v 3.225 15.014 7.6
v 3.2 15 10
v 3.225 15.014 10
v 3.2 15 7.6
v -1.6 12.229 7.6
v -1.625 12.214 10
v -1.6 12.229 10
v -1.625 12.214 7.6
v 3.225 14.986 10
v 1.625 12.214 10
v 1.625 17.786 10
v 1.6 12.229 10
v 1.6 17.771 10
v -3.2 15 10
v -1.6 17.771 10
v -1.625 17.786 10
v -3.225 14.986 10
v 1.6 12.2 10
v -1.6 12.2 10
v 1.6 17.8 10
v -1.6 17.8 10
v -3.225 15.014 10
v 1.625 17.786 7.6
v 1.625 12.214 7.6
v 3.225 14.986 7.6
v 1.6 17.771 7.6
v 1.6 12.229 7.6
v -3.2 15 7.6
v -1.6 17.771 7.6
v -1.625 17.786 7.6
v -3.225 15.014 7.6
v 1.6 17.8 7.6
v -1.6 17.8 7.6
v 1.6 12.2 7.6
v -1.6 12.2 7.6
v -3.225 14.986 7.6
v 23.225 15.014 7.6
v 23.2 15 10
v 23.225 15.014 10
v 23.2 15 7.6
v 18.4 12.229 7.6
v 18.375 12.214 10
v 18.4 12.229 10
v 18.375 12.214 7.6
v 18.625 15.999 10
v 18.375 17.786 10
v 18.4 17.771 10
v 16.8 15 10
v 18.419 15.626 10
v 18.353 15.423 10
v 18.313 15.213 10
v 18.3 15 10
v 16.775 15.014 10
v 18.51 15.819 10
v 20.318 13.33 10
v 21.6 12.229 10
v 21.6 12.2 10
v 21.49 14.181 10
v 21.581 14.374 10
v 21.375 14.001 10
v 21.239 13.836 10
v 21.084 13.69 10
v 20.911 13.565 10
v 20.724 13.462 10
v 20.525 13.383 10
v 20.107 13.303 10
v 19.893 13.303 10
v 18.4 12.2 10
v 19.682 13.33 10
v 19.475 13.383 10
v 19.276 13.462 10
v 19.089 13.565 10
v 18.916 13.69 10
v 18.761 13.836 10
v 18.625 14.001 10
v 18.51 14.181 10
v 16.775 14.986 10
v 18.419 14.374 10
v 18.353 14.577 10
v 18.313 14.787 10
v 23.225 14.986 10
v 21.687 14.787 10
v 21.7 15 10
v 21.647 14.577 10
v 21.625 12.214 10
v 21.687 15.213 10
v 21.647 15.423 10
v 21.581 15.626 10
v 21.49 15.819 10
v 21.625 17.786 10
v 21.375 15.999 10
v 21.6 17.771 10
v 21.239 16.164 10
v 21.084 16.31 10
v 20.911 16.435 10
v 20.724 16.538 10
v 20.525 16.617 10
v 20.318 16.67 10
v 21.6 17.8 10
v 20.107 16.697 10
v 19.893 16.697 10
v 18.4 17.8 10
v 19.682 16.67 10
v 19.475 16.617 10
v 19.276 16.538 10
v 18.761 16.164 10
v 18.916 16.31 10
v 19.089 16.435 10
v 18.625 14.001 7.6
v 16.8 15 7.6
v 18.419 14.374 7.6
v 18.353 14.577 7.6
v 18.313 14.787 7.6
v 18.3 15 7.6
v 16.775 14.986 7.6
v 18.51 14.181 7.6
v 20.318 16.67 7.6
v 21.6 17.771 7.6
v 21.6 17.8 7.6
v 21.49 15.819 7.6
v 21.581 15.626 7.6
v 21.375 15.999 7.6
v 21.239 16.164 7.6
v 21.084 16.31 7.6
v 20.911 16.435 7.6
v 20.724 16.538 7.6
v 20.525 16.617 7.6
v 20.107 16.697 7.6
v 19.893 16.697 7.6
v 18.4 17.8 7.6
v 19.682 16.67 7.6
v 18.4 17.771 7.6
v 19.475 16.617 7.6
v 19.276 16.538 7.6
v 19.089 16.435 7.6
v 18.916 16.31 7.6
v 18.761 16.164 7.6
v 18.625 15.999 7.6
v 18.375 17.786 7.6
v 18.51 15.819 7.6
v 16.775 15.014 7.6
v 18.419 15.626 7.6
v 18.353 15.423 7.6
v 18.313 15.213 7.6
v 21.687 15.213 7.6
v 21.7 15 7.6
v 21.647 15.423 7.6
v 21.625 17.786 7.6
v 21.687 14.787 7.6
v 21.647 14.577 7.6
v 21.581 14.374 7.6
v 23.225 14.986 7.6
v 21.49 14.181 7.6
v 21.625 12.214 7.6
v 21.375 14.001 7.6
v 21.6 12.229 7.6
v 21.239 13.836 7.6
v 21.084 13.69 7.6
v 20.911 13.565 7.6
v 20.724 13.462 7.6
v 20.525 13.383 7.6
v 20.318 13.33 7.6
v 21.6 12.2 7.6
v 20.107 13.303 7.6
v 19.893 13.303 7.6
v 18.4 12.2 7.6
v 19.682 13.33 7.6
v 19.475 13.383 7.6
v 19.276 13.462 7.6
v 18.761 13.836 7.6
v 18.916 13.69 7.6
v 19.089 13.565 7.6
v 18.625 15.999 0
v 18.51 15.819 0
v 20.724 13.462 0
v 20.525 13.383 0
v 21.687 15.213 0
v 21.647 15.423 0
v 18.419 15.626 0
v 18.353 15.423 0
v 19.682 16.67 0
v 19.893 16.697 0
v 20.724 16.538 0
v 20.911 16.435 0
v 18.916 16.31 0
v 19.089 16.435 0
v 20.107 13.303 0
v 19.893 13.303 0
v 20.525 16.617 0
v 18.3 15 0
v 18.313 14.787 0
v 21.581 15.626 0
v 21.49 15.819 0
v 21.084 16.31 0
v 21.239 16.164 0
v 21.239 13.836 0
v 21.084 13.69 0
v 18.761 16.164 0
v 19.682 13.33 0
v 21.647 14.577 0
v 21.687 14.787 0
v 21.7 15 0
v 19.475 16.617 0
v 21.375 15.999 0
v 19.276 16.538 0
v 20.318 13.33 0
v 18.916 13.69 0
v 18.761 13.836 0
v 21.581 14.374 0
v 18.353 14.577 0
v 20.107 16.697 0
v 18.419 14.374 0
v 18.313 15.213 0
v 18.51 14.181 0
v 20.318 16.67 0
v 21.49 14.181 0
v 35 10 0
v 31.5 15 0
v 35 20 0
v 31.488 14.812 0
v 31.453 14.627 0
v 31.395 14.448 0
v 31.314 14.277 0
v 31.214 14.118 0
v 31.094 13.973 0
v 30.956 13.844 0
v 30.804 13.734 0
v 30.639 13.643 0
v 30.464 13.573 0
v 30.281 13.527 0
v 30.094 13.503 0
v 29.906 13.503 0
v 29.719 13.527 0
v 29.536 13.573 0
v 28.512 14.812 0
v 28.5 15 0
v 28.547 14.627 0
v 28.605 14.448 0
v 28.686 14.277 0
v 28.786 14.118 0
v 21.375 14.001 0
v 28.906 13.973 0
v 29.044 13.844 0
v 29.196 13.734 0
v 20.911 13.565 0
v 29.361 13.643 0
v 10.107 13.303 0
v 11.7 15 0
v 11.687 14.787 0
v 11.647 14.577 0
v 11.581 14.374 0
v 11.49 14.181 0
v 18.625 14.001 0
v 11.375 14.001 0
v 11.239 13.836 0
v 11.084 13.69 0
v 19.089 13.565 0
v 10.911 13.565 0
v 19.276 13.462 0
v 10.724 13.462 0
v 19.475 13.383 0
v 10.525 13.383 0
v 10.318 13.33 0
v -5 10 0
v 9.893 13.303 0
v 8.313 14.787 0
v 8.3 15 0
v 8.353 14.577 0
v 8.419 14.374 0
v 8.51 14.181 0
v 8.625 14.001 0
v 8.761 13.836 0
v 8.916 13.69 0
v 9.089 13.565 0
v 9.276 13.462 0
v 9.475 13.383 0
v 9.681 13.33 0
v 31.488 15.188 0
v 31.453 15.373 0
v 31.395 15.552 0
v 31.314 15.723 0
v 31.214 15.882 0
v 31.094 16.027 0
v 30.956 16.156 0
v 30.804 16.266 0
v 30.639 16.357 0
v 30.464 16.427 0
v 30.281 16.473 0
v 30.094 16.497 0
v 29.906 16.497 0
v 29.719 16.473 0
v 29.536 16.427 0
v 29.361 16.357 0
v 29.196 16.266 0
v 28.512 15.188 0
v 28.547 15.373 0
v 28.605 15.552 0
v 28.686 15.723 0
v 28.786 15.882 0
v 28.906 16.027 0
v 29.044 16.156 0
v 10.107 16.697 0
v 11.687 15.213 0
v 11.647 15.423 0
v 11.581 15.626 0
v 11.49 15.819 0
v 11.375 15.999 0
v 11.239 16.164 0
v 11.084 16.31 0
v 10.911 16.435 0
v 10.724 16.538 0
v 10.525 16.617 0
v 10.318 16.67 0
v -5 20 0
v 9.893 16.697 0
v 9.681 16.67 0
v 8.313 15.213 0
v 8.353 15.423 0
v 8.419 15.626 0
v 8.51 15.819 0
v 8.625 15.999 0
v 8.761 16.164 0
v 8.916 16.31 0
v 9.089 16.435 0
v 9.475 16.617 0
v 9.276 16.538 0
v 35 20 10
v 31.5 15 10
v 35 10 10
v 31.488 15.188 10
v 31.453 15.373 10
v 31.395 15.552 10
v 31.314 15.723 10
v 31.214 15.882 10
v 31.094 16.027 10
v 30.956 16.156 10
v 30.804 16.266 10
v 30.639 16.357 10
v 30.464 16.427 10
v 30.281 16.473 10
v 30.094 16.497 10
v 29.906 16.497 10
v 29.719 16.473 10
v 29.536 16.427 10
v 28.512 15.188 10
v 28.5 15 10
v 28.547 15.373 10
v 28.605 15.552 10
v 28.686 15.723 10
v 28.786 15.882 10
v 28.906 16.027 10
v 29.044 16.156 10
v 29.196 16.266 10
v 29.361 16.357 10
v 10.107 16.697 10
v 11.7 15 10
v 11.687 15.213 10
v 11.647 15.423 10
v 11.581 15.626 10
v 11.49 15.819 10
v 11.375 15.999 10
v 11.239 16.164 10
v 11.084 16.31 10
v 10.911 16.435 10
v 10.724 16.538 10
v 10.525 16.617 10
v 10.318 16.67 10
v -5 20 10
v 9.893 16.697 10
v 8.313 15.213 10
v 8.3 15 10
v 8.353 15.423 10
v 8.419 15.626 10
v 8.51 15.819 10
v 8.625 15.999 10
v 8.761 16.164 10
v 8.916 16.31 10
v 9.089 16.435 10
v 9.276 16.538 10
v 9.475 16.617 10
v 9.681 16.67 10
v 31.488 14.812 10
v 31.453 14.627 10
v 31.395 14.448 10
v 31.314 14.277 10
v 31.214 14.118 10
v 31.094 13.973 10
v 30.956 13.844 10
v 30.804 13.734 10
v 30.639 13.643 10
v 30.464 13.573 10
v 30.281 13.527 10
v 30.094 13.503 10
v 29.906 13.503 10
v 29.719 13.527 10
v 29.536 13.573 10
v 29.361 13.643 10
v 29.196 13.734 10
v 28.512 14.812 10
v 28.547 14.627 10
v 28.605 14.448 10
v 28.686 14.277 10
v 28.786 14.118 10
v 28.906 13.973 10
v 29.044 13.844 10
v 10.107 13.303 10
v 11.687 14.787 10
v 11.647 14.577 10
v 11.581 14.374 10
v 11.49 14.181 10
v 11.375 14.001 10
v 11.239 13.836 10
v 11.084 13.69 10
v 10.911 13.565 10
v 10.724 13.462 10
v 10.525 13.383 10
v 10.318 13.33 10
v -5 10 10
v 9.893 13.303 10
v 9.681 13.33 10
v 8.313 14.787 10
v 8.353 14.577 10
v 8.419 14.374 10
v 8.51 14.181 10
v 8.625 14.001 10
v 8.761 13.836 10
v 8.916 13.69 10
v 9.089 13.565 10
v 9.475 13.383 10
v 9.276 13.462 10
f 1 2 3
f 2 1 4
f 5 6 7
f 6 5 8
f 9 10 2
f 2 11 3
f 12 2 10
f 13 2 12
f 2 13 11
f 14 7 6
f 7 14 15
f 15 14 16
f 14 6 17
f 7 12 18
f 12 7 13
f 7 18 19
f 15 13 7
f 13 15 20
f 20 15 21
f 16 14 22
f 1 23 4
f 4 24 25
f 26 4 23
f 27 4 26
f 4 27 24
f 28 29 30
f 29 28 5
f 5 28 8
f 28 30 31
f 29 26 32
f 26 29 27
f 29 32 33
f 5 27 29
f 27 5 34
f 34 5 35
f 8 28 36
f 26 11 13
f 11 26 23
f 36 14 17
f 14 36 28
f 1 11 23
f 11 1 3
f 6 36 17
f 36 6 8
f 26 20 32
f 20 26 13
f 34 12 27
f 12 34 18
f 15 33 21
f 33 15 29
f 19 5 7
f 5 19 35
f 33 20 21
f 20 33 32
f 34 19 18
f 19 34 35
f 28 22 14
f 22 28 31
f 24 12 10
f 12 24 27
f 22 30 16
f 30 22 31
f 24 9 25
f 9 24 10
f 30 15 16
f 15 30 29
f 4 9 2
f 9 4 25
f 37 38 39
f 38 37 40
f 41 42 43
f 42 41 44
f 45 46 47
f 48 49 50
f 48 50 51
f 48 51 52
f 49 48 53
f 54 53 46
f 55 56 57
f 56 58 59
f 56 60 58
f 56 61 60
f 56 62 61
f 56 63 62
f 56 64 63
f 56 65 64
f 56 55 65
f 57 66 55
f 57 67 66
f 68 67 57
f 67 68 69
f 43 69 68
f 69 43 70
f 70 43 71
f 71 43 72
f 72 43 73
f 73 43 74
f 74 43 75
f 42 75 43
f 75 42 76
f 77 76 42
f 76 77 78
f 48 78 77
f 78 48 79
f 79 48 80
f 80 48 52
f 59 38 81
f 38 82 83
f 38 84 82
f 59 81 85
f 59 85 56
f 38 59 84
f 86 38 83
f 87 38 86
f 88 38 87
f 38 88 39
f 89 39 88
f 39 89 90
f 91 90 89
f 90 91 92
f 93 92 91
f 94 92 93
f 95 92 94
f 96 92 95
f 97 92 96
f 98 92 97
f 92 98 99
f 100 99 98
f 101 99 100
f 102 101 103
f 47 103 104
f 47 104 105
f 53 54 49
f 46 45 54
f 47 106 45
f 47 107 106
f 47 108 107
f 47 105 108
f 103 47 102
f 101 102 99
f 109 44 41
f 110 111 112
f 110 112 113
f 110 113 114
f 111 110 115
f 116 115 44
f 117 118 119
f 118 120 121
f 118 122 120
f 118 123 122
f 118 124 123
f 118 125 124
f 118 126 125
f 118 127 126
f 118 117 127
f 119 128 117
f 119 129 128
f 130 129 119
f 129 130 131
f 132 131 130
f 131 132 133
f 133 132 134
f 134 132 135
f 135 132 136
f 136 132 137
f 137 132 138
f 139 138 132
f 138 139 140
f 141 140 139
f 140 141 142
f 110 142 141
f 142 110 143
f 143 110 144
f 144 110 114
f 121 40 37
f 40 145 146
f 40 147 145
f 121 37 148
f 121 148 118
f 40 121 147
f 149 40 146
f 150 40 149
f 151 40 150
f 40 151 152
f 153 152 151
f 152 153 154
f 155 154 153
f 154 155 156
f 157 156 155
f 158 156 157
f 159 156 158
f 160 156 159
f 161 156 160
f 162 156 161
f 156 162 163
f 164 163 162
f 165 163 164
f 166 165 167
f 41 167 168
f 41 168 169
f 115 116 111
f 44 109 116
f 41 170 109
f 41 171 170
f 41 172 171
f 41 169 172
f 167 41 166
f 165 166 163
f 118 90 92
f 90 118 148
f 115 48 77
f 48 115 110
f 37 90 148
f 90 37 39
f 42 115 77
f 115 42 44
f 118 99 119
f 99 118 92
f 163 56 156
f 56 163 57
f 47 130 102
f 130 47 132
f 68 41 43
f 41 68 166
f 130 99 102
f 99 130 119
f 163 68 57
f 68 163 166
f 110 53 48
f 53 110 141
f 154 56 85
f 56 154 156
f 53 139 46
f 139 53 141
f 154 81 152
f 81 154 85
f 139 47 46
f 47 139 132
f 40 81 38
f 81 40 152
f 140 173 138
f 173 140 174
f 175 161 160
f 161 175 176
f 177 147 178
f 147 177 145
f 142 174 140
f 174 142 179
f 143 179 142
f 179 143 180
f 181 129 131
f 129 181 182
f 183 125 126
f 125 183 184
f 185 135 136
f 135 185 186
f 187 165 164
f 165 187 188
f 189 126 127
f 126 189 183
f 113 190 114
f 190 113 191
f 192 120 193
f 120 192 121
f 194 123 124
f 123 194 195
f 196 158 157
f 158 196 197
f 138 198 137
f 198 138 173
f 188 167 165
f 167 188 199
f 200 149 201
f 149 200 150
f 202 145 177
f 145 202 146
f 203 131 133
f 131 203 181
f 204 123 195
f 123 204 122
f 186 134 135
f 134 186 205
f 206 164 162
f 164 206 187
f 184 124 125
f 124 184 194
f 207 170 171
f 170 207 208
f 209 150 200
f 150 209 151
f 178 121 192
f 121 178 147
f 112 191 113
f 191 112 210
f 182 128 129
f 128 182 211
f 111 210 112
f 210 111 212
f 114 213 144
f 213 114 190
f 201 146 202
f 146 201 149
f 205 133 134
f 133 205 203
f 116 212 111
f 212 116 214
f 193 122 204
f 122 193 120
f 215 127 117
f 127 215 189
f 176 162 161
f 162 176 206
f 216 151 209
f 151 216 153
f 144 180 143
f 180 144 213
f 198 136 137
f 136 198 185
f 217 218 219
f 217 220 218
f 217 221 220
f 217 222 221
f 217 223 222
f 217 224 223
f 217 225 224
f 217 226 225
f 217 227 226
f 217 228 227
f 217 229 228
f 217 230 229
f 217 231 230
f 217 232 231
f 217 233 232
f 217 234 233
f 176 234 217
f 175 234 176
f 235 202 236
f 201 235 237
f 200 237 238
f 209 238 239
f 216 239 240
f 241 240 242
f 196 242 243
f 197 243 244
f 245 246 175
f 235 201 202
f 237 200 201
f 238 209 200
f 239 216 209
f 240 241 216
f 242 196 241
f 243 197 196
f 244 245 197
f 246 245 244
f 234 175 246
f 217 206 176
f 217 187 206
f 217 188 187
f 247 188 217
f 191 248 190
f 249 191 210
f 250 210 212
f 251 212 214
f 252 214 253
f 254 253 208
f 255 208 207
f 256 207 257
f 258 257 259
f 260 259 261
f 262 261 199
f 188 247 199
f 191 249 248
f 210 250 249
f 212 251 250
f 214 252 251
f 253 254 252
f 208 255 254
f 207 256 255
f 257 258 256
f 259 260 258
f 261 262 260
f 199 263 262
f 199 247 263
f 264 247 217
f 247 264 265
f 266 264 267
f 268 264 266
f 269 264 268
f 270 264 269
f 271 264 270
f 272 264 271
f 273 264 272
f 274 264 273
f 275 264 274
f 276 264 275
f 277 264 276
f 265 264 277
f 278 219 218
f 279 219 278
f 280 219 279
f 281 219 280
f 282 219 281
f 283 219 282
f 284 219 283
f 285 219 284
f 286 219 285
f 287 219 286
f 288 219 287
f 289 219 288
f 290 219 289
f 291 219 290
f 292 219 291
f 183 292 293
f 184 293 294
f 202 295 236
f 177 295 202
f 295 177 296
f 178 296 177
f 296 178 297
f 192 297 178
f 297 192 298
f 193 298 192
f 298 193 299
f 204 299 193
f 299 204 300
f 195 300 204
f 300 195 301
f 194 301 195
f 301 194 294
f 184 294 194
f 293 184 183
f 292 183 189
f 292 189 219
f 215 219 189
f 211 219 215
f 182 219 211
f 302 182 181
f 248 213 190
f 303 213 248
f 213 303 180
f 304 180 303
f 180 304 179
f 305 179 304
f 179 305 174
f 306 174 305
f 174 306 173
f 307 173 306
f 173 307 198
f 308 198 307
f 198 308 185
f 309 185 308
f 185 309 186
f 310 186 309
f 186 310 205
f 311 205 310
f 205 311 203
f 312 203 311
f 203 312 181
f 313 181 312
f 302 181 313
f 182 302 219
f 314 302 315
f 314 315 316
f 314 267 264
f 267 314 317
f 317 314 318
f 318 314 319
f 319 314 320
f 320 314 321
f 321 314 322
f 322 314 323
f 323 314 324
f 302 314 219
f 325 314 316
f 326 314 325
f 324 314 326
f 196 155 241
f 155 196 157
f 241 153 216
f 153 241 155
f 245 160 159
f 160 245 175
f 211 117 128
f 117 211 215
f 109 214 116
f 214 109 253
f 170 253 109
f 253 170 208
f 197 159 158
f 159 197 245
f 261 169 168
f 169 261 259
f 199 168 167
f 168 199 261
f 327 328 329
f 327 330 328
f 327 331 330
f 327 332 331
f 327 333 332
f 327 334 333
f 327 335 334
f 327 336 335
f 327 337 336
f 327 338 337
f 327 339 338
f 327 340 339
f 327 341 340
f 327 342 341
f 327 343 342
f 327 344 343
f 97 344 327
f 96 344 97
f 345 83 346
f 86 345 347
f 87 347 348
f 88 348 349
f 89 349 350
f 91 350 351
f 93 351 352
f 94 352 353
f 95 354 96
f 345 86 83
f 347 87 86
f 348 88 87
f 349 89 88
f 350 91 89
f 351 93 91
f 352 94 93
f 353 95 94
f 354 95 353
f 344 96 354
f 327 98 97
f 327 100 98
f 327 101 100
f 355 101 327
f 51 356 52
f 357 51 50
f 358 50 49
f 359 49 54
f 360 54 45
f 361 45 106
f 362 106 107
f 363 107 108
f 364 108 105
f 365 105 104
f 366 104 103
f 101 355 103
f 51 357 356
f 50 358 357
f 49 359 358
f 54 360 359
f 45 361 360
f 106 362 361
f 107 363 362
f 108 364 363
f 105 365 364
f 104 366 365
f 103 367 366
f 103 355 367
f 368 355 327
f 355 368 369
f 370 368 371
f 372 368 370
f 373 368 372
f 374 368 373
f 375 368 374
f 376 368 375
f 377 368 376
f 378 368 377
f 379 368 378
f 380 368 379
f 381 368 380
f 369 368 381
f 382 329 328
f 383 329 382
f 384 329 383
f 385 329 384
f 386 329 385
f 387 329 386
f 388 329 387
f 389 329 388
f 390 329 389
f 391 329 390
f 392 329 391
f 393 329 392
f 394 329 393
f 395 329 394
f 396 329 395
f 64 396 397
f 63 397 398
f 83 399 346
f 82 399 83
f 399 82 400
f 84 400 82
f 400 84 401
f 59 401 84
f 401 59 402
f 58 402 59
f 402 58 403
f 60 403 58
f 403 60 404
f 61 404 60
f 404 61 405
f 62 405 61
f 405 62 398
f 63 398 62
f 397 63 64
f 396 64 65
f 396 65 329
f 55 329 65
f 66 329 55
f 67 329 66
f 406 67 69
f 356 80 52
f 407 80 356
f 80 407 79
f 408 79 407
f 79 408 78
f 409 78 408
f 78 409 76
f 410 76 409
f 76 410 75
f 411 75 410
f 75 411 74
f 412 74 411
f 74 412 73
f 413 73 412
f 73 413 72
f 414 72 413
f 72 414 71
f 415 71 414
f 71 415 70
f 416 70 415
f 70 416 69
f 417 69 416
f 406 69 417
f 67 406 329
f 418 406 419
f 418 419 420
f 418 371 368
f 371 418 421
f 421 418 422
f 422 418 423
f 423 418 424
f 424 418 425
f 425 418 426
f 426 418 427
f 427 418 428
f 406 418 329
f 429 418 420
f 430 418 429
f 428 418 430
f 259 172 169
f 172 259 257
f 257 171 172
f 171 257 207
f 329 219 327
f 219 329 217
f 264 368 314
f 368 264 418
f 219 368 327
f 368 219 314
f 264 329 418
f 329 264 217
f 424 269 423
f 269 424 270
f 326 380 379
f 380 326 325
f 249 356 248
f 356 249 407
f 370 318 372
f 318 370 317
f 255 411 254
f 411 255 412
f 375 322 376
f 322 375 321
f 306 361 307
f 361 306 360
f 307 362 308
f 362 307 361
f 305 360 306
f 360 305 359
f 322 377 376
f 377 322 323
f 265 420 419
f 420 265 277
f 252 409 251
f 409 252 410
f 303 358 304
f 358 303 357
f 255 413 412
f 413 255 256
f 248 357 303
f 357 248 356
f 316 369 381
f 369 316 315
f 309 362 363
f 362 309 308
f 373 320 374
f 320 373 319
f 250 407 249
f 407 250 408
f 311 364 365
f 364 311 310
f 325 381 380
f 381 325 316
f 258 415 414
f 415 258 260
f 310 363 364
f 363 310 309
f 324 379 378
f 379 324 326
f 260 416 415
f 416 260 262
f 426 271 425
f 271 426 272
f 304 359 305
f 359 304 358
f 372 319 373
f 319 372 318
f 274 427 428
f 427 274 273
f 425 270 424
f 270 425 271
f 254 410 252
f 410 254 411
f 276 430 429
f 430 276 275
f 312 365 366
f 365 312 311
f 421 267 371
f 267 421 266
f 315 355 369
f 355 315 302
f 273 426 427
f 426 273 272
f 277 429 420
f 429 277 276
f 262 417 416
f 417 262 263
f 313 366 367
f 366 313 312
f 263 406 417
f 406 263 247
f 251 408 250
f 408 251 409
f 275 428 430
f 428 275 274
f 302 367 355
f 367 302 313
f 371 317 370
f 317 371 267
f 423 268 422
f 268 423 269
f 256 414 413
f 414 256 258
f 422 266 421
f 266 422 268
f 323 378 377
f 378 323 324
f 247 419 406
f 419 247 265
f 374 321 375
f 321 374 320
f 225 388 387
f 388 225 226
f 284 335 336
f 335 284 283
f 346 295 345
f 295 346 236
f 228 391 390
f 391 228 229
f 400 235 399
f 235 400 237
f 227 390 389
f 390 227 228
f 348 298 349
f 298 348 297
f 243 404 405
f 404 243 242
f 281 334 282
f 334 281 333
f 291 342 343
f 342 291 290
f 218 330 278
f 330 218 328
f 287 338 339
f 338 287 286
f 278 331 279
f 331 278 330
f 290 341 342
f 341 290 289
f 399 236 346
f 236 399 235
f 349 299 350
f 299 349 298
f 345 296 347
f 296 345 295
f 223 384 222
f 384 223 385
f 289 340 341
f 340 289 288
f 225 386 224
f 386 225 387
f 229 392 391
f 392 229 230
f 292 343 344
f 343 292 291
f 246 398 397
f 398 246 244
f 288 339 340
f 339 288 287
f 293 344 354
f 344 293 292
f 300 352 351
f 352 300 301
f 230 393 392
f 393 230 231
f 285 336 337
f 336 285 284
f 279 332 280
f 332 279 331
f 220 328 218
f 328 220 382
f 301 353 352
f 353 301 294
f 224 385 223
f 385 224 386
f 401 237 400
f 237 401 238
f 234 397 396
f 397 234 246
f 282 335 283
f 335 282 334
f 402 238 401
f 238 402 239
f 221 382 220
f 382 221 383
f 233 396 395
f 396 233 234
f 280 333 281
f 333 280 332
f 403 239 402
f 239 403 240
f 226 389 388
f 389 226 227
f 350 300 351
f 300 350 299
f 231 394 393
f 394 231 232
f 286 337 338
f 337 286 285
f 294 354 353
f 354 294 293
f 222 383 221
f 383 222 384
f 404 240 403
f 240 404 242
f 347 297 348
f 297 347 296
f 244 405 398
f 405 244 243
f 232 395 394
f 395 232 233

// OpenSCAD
$fn=50;

module hexagon(size, height) {
  // 1/4" hex nut: 7/16*25.4,5
  // M3 normal bolt:  5.4,2.4
  boxWidth = size/1.75;
  translate([0,0,height/2])
    for (r = [-60, 0, 60]) rotate([0,0,r]) cube([boxWidth, size, height], center=true);
}


// parameterize? nutHole(M3); nutHole(E1_4);
// add centered parm?
// add head, height and diameter? is a 25mm M3 bolt inclusive or exclusive?
module m3NutHole() { hexagon(5.4+0.2,2.4); }
module m3ClearanceHole(length) { cylinder(length,d=3.4); }
module m3PilotHole(length) { cylinder(length,d=3); }

module demo() {
    if (0) {
    translate([0,0,0]) m3NutHole();
    translate([10,0,0]) m3ClearanceHole(10);
    translate([20,0,0]) { m3NutHole(); m3ClearanceHole(10);}
    translate([30,0,0]) m3PilotHole(10);
    }
    translate([0,10,0]) {
        difference() {
            translate([-5,0,0]) cube([40,10,10]);
            #translate([0,5,10-2.4]) m3NutHole();
            //#translate([0,5,10]) mirror([0,0,0]) m3NutHole();
            #translate([10,5,0]) m3ClearanceHole(10);
            #translate([20,5,0]) { translate([0,0,10-2.4]) m3NutHole(); m3ClearanceHole(10);}
            #translate([30,5,0]) m3PilotHole(10);
        }
    }
    
}

demo();
